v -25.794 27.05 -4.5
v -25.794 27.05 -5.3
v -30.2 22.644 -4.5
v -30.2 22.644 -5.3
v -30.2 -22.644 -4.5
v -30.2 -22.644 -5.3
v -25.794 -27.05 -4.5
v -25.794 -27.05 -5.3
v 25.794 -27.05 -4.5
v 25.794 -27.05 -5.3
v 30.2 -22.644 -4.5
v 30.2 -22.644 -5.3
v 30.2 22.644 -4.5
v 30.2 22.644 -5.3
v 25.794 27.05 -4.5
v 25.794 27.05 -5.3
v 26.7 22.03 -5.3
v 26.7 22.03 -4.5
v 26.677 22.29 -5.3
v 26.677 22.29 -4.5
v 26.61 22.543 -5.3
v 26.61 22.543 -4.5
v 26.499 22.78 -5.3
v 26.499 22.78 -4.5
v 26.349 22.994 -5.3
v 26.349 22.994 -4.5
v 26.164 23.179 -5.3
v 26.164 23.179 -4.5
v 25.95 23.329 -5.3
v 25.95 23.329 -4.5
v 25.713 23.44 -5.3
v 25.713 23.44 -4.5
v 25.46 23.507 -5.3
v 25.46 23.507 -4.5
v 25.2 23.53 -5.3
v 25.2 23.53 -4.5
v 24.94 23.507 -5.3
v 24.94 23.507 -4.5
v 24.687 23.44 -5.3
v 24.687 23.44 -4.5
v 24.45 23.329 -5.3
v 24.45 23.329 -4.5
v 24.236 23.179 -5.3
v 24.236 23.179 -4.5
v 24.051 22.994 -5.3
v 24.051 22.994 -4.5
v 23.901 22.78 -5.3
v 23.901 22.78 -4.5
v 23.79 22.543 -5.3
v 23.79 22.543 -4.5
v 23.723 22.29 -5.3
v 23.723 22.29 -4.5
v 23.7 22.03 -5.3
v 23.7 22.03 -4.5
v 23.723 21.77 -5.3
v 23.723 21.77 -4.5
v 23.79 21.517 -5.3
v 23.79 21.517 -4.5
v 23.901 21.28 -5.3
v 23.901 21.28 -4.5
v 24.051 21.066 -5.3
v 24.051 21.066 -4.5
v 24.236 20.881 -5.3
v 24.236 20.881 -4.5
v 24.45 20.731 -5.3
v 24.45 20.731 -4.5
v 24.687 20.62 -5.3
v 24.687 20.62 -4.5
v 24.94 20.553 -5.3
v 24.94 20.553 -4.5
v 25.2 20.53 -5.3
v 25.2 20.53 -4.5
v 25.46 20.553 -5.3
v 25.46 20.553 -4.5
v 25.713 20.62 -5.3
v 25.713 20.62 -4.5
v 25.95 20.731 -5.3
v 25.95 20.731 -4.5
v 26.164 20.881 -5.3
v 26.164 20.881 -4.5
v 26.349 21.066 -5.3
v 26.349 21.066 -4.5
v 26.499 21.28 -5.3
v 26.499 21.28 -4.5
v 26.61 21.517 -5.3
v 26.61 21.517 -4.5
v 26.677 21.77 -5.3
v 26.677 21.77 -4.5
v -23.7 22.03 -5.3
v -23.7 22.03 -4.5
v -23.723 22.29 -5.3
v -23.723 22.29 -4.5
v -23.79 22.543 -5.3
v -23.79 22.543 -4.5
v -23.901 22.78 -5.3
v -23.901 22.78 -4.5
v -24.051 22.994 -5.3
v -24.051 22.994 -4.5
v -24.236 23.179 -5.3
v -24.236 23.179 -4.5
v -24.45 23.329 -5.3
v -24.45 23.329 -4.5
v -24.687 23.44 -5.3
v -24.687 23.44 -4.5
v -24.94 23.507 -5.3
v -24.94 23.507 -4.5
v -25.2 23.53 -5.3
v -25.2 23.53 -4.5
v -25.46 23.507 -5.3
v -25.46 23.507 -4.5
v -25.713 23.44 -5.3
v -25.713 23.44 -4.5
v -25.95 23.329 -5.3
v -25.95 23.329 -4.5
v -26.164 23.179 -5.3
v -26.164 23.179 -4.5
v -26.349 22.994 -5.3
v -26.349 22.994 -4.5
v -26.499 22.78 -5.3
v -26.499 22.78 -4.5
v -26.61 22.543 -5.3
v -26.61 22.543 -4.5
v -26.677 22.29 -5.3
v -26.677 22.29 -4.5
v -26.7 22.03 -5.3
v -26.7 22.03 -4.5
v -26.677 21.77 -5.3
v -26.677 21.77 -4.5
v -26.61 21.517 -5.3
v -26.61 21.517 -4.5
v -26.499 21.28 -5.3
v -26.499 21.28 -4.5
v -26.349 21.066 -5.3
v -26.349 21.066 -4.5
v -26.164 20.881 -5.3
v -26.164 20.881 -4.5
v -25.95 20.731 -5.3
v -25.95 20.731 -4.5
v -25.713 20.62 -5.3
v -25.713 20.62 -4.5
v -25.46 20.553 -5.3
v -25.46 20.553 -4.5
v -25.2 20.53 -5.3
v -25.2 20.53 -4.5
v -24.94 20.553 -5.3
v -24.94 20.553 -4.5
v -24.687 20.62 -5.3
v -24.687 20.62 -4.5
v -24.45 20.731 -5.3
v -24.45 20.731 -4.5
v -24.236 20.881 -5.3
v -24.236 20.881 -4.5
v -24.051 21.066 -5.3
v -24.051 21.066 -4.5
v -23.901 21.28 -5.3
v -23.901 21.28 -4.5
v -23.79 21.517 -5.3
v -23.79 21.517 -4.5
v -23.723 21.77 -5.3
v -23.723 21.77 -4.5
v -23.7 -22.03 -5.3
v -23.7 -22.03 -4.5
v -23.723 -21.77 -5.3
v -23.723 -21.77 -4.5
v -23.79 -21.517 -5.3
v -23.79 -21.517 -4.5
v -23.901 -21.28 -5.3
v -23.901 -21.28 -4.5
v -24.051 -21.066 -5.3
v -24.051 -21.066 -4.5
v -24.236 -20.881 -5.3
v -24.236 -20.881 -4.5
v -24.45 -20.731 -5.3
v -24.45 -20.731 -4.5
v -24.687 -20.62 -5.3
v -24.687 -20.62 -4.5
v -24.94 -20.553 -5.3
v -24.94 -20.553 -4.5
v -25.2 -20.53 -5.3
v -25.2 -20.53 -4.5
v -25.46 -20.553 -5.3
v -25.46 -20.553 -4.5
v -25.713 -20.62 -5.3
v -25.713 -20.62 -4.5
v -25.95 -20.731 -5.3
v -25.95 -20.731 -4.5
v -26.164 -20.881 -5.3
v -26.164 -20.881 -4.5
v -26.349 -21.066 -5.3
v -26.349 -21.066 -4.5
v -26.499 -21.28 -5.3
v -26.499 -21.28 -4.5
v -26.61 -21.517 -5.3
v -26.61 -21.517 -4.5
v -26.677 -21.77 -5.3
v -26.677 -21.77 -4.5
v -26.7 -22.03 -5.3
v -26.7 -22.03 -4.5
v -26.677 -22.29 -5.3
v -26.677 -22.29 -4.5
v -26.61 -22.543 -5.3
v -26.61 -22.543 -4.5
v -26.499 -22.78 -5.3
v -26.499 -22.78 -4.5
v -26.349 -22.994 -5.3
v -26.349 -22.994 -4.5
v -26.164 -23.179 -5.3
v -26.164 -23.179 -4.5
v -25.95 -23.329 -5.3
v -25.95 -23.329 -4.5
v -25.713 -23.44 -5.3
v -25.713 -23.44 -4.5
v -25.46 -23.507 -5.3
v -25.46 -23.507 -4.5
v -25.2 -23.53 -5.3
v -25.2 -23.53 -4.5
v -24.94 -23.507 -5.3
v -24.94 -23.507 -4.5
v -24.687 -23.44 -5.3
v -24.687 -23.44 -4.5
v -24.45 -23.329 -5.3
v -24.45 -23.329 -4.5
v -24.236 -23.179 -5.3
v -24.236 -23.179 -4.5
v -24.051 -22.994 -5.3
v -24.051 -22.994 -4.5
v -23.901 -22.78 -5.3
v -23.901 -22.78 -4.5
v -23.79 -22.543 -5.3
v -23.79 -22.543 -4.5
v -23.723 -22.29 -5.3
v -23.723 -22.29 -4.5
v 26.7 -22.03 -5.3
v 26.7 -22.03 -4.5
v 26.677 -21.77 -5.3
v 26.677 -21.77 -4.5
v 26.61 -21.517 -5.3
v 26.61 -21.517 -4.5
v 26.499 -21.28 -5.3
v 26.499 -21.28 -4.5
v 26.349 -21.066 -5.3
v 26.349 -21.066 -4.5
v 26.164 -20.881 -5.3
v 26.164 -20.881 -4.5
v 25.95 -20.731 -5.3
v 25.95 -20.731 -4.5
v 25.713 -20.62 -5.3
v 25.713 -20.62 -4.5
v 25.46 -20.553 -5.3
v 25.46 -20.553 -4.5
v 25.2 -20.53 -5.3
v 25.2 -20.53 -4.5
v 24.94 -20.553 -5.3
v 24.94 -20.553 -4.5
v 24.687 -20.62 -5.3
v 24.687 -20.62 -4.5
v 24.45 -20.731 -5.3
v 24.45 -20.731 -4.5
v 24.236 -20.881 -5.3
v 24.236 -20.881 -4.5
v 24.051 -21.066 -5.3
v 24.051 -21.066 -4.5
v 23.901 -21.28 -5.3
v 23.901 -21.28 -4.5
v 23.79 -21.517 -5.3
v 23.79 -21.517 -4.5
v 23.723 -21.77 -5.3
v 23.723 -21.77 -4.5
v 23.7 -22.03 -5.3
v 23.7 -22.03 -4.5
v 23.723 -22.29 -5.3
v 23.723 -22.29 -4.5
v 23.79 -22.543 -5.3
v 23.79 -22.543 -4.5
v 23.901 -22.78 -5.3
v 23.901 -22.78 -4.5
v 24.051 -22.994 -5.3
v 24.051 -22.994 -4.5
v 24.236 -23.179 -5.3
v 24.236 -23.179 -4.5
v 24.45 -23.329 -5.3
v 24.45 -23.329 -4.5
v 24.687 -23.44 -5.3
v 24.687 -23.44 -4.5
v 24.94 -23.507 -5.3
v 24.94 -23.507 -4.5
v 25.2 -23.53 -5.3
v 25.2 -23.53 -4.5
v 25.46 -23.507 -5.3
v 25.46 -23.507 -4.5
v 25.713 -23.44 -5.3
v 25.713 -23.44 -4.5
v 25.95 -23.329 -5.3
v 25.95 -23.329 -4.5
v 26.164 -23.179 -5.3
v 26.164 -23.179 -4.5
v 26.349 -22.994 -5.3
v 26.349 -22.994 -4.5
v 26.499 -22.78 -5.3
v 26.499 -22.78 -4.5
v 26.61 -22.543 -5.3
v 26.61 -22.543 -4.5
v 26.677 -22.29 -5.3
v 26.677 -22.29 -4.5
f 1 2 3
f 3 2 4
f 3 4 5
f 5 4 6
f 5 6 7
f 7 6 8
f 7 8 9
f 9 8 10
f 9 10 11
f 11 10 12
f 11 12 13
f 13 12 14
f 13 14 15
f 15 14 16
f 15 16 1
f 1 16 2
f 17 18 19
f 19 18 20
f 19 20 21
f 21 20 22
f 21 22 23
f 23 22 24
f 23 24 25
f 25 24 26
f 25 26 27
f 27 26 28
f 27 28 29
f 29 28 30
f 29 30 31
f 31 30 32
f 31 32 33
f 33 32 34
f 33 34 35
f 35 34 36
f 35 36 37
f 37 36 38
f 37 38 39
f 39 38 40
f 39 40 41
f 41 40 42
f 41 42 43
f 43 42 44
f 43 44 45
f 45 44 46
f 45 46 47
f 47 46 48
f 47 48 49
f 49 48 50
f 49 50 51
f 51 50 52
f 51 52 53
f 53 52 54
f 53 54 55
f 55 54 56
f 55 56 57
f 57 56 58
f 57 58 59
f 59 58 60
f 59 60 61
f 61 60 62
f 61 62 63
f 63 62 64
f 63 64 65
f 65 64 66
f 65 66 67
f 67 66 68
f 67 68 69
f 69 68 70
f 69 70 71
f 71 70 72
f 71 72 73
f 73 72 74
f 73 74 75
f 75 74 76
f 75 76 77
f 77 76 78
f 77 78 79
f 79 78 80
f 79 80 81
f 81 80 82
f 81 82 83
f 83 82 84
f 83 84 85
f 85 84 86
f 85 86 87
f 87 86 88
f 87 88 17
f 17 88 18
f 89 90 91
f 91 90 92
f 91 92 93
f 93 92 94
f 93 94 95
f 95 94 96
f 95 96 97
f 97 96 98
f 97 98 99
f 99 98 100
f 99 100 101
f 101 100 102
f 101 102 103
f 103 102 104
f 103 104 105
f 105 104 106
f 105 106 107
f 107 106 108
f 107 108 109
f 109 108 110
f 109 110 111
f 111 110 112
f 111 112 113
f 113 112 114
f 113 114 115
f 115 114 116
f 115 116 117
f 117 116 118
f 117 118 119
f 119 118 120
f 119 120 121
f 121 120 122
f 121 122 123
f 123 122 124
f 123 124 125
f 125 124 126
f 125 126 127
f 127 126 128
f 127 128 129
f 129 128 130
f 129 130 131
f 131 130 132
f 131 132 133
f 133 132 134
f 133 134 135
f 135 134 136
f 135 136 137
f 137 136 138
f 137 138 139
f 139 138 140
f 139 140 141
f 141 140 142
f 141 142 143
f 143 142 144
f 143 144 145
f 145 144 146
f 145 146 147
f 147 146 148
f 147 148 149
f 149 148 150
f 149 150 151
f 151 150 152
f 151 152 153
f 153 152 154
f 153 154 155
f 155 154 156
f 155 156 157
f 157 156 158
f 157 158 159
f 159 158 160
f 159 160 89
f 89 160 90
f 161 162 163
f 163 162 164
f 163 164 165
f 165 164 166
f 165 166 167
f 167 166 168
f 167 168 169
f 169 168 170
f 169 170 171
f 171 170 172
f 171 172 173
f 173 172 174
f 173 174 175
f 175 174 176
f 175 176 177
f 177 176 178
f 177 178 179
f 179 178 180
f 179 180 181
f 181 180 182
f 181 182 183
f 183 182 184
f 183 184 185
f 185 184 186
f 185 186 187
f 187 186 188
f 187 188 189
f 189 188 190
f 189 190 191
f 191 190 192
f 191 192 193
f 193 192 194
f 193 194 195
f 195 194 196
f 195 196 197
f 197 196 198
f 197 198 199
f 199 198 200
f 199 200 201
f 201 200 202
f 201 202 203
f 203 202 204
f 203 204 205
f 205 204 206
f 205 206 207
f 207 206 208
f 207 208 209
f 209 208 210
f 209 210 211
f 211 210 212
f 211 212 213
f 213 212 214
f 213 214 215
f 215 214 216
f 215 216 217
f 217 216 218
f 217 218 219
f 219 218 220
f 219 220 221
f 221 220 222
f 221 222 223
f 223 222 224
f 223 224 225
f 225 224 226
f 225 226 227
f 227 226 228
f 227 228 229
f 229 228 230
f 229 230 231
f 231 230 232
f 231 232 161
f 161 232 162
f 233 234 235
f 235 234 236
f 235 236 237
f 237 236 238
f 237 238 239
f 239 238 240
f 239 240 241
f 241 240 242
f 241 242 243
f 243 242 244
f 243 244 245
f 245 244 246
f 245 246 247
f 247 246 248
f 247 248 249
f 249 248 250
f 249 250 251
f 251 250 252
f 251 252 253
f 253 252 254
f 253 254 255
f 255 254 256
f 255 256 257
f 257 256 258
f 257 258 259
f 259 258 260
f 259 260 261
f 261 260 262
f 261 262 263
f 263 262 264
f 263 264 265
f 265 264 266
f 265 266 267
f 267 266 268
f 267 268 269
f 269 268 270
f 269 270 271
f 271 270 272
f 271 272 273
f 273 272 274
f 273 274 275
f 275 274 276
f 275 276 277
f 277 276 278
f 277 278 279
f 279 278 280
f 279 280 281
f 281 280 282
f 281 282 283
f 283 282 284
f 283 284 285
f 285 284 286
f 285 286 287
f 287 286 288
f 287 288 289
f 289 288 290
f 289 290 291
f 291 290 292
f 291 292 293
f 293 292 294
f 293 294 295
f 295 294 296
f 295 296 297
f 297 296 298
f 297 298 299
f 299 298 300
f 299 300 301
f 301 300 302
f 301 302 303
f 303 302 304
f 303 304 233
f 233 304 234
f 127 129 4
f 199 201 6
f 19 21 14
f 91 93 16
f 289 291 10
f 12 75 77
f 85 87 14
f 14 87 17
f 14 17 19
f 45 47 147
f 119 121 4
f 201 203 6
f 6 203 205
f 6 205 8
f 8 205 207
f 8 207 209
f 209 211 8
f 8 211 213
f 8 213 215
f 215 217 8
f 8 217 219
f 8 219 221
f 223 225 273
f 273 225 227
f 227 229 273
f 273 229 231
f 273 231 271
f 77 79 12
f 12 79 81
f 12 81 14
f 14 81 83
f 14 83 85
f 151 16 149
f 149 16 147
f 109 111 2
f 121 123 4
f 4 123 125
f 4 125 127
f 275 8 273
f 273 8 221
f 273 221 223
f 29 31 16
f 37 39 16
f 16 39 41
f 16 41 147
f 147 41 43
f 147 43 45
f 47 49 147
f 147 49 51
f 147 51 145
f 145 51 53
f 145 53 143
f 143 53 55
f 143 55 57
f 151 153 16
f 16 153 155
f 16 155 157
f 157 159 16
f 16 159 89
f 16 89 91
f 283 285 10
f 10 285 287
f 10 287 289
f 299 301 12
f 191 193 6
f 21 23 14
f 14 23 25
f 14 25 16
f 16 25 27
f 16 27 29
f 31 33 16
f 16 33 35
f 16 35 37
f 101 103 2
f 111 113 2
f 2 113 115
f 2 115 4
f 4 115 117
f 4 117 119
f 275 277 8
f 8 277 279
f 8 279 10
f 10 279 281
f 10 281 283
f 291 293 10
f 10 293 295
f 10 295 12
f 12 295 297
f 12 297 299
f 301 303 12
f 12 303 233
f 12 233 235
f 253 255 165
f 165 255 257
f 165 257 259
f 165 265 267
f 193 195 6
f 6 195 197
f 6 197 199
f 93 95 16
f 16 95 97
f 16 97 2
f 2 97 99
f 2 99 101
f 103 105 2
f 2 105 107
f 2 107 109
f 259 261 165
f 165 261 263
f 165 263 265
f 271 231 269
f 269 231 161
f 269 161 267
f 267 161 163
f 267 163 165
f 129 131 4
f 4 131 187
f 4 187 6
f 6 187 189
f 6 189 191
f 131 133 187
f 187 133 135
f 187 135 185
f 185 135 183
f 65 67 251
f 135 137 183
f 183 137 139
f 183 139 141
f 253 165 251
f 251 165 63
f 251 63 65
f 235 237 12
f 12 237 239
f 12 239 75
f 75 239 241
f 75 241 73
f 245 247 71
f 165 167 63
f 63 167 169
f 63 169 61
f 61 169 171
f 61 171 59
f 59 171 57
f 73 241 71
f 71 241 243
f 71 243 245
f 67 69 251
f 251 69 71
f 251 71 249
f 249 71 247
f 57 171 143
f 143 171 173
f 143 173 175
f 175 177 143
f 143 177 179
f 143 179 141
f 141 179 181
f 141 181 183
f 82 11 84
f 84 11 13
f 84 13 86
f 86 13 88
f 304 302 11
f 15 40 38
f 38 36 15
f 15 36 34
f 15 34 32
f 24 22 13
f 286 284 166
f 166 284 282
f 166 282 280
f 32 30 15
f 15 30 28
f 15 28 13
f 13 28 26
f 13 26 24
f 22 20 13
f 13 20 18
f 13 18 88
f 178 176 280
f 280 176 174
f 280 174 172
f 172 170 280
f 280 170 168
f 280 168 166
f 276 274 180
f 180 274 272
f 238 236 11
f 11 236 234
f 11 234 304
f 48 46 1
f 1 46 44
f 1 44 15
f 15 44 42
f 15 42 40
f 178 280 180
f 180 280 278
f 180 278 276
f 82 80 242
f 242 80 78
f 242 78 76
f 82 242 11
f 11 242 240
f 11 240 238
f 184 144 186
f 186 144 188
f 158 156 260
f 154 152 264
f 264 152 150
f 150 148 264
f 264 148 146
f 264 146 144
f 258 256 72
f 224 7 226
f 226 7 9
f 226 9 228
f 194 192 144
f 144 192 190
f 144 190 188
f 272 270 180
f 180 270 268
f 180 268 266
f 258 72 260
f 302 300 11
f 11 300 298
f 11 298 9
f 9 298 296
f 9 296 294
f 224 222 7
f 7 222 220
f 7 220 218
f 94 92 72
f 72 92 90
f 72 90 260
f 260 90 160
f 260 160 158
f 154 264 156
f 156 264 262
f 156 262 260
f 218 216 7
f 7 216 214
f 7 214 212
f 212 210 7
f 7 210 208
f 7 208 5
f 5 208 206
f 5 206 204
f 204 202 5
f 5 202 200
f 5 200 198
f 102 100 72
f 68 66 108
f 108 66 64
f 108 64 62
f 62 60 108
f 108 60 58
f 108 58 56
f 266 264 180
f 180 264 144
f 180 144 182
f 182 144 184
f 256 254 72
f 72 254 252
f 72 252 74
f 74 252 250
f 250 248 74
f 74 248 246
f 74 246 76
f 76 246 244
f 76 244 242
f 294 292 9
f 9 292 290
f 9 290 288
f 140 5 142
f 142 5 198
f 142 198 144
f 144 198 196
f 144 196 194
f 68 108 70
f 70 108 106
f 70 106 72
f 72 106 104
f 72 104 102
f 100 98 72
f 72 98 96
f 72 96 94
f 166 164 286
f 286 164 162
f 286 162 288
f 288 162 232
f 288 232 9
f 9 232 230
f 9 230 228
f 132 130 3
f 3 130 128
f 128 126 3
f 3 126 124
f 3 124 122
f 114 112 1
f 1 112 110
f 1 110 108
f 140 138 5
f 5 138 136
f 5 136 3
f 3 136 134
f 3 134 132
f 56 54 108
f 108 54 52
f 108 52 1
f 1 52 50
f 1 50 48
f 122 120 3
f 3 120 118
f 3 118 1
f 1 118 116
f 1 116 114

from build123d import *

# Parameters (mm, degrees)
EXTRUDE_1_DEPTH     = 22.2
EXTRUDE_2_DEPTH     = 4.5
SKETCH_3_R          = 1.5
CUT_EXTRUDE_1_DEPTH = 47.223181414
CUT_EXTRUDE_3_DEPTH = 3.7
CUT_EXTRUDE_4_REACH = 67.816
SKETCH_6_W          = 9
SKETCH_6_H          = 7.6
SKETCH_6_W_2        = 11
SKETCH_6_H_2        = 6
CUT_EXTRUDE_5_REACH = 67.816
SKETCH_7_W          = 5
SKETCH_7_H          = 5
SKETCH_8_R          = 1.5
EXTRUDE_3_DEPTH     = 0.8
SKETCH_10_W         = 60.4
SKETCH_10_H         = 26.7
CUT_EXTRUDE_7_DEPTH = 66.815575664


with BuildPart() as part:
    # 草圖1 → 填料-伸長1 (new body)
    with BuildSketch(Plane.XY):
        Polygon((-25.794213562, 27.05), (25.794213562, 27.05), (30.2, 22.644213562), (30.2, -22.644213562), (25.794213562, -27.05), (-25.794213562, -27.05), (-30.2, -22.644213562), (-30.2, 22.644213562), align=None)
        Polygon((-29.4, 22.312842712), (-25.462842712, 26.25), (25.462842712, 26.25), (29.4, 22.312842712), (29.4, -22.312842712), (25.462842712, -26.25), (-25.462842712, -26.25), (-29.4, -22.312842712), align=None, mode=Mode.SUBTRACT)
    extrude(amount=EXTRUDE_1_DEPTH)

    # 草圖2 → 填料-伸長2 (add)
    with BuildSketch(Plane(origin=(0, 0, 0), x_dir=(-1, 0, 0), z_dir=(0, 0, -1))):
        Polygon((-30.2, 22.644213562), (-25.794213562, 27.05), (25.794213562, 27.05), (30.2, 22.644213562), (30.2, -22.644213562), (25.794213562, -27.05), (-25.794213562, -27.05), (-30.2, -22.644213562), align=None)
    extrude(amount=EXTRUDE_2_DEPTH)

    # 草圖3 → 除料-伸長1 (cut, through all)
    with BuildSketch(Plane.XY):
        with Locations((25.2, 22.03)):
            Circle(SKETCH_3_R)
        with Locations(Location((25.2, -22.03, 0), (0, 0, 180))):
            Circle(SKETCH_3_R)
        with Locations((-25.2, -22.03)):
            Circle(SKETCH_3_R)
        with Locations(Location((-25.2, 22.03, 0), (0, 0, 180))):
            Circle(SKETCH_3_R)
    extrude(amount=-CUT_EXTRUDE_1_DEPTH, mode=Mode.SUBTRACT)

    # 草圖5 → 除料-伸長3 (cut)
    with BuildSketch(Plane.XY):
        with BuildLine():
            Line((-25.234050993, 18.530165643), (-25.234050993, -18.530165643))
            ThreePointArc((-25.234050993, -18.530165643), (-22.715358839, -19.564932394), (-21.700544406, -22.091729589))
            Line((-21.700544406, -22.091729589), (21.700544406, -22.091729589))
            ThreePointArc((21.700544406, -22.091729589), (22.737758998, -19.542557689), (25.297360416, -18.531354412))
            Line((25.297360416, -18.531354412), (25.297360416, 18.531354412))
            ThreePointArc((25.297360416, 18.531354412), (22.56426249, 19.727200014), (21.74608079, 22.596076045))
            Line((21.74608079, 22.596076045), (-21.74608079, 22.596076045))
            ThreePointArc((-21.74608079, 22.596076045), (-22.543539666, 19.751136578), (-25.234050993, 18.530165643))
        make_face()
    extrude(amount=-CUT_EXTRUDE_3_DEPTH, mode=Mode.SUBTRACT)

    # 草圖6 → 除料-伸長4 (cut, up to next)
    with BuildSketch(Plane.XZ.offset(27.05), mode=Mode.PRIVATE) as cut_extrude_4_sk1:
        with Locations((6.7, 4.9)):
            Rectangle(SKETCH_6_W, SKETCH_6_H)
    cut_extrude_4_tool1 = extrude(cut_extrude_4_sk1.sketch, amount=-CUT_EXTRUDE_4_REACH, mode=Mode.PRIVATE) & part.part
    # 草圖6 → 除料-伸長4 (cut, up to next)
    with BuildSketch(Plane.XZ.offset(27.05), mode=Mode.PRIVATE) as cut_extrude_4_sk2:
        with Locations((-11.7, 14.2)):
            Rectangle(SKETCH_6_W_2, SKETCH_6_H_2)
    cut_extrude_4_tool2 = extrude(cut_extrude_4_sk2.sketch, amount=-CUT_EXTRUDE_4_REACH, mode=Mode.PRIVATE) & part.part
    add(cut_extrude_4_tool1.solids().sort_by_distance((6.7, -27.05, 4.9))[0], mode=Mode.SUBTRACT)
    add(cut_extrude_4_tool2.solids().sort_by_distance((-11.7, -27.05, 14.2))[0], mode=Mode.SUBTRACT)

    # 草圖7 → 除料-伸長5 (cut, up to next)
    with BuildSketch(Plane(origin=(0, 27.05, 0), x_dir=(1, 0, 0), z_dir=(0, 1, 0)), mode=Mode.PRIVATE) as cut_extrude_5_sk1:
        with Locations((0, -8.85)):
            Rectangle(SKETCH_7_W, SKETCH_7_H)
    cut_extrude_5_tool1 = extrude(cut_extrude_5_sk1.sketch, amount=-CUT_EXTRUDE_5_REACH, mode=Mode.PRIVATE) & part.part
    add(cut_extrude_5_tool1.solids().sort_by_distance((0, 27.05, 8.85))[0], mode=Mode.SUBTRACT)

    # 草圖8 → 填料-伸長3 (add)
    with BuildSketch(Plane(origin=(0, 0, -4.5), x_dir=(-1, 0, 0), z_dir=(0, 0, -1))):
        Polygon((30.2, -22.644213562), (25.794213562, -27.05), (-25.794213562, -27.05), (-30.2, -22.644213562), (-30.2, 22.644213562), (-25.794213562, 27.05), (25.794213562, 27.05), (30.2, 22.644213562), align=None)
        with Locations(Location((25.2, -22.03, 0), (0, 0, 180))):
            Circle(SKETCH_8_R, mode=Mode.SUBTRACT)
        with Locations((-25.2, -22.03)):
            Circle(SKETCH_8_R, mode=Mode.SUBTRACT)
        with Locations(Location((-25.2, 22.03, 0), (0, 0, 180))):
            Circle(SKETCH_8_R, mode=Mode.SUBTRACT)
        with Locations((25.2, 22.03)):
            Circle(SKETCH_8_R, mode=Mode.SUBTRACT)
    extrude(amount=EXTRUDE_3_DEPTH)

    # 草圖10 → 除料-伸長7 (cut, through all)
    with BuildSketch(Plane(origin=(0, 27.05, 0), x_dir=(1, 0, 0), z_dir=(0, 1, 0))):
        with Locations((0, -8.85)):
            Rectangle(SKETCH_10_W, SKETCH_10_H)
    extrude(amount=-CUT_EXTRUDE_7_DEPTH, mode=Mode.SUBTRACT)


solid = part.part
